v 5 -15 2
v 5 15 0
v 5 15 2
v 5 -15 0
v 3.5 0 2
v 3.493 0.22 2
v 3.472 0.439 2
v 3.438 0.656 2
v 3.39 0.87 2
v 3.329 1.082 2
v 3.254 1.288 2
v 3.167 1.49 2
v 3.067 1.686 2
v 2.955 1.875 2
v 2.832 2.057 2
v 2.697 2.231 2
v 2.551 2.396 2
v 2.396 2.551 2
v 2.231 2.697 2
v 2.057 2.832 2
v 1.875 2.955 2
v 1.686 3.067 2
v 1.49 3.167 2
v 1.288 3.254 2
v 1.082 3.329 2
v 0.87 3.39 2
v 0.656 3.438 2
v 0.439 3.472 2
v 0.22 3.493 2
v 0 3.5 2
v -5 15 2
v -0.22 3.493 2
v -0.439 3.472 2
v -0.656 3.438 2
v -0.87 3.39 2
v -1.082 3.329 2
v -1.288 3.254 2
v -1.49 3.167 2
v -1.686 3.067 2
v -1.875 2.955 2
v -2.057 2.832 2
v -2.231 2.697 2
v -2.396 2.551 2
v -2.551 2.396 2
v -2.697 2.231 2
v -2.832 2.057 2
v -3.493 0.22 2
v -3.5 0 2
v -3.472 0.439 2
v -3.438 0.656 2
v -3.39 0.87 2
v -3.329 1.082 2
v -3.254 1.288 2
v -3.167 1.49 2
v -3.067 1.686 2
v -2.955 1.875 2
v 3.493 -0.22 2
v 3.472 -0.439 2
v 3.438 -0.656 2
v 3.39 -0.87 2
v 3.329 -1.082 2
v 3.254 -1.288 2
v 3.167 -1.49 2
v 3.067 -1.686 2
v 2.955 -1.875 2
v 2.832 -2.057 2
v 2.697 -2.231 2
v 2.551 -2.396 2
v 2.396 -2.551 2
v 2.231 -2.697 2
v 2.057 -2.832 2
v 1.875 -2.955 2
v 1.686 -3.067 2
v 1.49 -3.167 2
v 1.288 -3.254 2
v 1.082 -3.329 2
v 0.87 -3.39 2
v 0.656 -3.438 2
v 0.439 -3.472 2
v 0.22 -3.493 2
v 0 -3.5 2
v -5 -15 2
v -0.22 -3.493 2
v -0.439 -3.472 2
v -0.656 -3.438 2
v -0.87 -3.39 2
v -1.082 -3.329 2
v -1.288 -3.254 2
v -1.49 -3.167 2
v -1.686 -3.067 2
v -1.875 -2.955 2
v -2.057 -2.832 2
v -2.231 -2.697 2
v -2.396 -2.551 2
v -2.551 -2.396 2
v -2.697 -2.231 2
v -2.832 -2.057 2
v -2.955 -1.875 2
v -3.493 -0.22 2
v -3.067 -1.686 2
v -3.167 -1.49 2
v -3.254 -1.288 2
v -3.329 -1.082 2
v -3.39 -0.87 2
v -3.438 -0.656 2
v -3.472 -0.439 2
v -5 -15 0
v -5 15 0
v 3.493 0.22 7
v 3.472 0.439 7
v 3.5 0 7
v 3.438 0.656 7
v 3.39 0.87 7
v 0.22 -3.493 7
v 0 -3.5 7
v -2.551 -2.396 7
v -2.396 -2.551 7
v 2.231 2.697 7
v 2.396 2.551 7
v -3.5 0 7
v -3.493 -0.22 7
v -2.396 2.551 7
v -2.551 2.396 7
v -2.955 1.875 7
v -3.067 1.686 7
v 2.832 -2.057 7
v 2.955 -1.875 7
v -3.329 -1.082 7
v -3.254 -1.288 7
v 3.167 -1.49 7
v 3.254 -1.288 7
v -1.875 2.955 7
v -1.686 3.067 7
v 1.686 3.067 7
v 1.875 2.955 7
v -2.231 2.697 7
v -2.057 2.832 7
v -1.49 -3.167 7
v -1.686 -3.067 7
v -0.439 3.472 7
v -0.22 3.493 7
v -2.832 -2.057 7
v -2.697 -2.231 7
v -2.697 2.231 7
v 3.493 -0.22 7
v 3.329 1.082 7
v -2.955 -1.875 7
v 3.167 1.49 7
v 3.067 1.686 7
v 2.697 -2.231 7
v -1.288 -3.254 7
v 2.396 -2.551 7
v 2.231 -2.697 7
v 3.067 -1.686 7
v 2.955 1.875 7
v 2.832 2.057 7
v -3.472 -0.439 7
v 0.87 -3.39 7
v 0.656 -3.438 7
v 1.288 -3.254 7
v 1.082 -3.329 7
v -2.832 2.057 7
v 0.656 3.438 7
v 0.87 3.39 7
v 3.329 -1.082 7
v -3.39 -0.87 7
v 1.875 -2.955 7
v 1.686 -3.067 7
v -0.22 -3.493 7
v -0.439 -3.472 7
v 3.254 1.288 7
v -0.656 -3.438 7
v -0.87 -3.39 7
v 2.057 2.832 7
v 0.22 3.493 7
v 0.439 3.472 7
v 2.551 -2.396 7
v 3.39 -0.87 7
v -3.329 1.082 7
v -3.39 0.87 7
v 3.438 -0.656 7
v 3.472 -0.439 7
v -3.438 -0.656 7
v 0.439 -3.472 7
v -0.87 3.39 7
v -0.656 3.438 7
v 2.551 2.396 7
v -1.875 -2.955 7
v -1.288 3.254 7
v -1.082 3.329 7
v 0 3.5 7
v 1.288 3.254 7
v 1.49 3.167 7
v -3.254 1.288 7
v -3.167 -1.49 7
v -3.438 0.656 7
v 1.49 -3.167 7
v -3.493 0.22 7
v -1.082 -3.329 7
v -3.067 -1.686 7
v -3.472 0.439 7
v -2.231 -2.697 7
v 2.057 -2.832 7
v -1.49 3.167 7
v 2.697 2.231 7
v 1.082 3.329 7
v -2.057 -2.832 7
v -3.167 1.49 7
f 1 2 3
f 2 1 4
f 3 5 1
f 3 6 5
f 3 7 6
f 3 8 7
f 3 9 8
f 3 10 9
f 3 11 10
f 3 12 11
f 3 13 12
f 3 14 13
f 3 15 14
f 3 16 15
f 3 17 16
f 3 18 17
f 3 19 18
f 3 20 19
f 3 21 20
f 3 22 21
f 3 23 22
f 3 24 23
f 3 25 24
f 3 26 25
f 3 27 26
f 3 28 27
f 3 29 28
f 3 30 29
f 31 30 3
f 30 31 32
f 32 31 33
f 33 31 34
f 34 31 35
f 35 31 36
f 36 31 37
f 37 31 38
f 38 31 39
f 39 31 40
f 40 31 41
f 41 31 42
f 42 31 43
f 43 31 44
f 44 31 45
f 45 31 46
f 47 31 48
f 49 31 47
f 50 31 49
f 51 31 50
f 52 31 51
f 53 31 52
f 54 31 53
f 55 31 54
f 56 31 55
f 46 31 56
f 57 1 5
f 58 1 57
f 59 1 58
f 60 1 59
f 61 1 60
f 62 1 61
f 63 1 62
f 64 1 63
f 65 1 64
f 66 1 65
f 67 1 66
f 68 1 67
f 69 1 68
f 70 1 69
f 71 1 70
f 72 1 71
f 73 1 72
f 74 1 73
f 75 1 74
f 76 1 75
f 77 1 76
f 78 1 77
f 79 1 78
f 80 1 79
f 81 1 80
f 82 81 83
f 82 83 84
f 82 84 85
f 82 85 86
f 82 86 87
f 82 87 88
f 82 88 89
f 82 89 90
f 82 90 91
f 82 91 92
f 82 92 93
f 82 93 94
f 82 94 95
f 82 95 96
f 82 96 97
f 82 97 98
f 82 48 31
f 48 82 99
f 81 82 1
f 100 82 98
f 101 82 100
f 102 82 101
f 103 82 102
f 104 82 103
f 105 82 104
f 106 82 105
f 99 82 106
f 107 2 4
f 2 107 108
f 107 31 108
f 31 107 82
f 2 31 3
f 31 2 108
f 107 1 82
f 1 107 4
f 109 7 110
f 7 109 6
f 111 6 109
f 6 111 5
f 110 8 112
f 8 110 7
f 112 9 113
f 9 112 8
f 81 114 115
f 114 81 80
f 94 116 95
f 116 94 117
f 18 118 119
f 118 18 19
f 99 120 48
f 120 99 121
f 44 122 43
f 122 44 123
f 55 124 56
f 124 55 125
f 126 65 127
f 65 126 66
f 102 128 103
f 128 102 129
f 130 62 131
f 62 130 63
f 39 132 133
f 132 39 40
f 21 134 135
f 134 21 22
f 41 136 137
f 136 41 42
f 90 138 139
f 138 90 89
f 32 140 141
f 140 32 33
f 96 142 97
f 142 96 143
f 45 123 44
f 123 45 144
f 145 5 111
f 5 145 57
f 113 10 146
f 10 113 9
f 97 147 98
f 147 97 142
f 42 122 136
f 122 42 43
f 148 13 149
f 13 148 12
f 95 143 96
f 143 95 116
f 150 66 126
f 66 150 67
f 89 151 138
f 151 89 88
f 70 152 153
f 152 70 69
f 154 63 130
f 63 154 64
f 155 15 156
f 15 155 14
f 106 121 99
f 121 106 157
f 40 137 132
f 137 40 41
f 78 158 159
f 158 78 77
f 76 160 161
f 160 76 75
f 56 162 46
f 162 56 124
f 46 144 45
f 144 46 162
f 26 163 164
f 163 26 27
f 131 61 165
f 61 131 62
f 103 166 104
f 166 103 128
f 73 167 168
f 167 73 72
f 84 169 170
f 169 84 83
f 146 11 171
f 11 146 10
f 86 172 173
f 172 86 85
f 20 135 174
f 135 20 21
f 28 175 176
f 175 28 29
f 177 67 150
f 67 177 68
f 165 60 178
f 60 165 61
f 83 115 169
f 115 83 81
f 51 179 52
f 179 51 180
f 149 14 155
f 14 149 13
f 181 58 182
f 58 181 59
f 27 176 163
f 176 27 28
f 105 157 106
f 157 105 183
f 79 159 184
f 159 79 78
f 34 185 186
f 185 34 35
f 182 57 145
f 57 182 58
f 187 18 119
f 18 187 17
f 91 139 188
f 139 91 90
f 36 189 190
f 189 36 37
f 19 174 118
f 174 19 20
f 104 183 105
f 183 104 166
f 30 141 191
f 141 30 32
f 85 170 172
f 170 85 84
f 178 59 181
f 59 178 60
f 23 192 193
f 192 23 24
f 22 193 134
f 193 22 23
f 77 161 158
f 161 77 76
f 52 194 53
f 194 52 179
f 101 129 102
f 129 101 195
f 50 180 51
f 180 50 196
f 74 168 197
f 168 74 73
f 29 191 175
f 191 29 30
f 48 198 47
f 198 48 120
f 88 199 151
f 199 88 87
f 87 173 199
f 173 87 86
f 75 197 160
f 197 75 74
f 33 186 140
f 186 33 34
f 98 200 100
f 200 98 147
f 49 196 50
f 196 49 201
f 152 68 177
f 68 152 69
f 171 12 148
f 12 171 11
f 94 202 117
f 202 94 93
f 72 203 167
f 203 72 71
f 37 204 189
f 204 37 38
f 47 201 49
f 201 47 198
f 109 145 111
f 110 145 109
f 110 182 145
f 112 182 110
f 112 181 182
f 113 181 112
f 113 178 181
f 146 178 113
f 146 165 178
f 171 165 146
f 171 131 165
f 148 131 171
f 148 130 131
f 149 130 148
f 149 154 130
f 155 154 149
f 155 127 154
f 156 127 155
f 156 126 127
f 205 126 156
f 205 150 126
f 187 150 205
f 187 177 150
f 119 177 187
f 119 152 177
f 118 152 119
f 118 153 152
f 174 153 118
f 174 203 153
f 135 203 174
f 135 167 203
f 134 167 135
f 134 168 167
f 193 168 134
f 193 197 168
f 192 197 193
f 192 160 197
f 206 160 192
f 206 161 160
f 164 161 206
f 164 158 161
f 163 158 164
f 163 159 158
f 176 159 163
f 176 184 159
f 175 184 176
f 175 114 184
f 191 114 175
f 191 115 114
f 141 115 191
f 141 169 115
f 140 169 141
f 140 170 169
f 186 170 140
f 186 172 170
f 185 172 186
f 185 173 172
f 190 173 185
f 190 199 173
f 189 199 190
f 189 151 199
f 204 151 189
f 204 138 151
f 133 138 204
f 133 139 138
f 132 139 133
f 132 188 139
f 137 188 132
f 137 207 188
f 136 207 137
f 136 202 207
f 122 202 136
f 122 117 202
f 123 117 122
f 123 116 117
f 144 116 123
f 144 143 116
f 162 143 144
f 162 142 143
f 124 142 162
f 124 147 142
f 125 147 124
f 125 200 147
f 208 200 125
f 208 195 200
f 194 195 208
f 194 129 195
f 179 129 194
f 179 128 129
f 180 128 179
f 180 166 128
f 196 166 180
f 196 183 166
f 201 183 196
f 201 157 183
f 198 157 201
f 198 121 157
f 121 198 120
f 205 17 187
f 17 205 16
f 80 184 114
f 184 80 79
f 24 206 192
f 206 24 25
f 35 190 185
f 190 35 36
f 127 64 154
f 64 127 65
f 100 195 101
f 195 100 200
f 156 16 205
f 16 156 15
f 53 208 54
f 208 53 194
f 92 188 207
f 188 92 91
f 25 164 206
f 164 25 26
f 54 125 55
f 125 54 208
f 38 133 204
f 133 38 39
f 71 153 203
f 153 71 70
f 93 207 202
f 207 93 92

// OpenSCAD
difference() {
union() {

    translate([-5, -15,0])
        cube([10, 30, 2]);

 translate([0,0,0]){
      rotate([0,0,0]){
           cylinder(h=7, r=3.5, $fn=100, center=false);
      }
  }
    
}


}
